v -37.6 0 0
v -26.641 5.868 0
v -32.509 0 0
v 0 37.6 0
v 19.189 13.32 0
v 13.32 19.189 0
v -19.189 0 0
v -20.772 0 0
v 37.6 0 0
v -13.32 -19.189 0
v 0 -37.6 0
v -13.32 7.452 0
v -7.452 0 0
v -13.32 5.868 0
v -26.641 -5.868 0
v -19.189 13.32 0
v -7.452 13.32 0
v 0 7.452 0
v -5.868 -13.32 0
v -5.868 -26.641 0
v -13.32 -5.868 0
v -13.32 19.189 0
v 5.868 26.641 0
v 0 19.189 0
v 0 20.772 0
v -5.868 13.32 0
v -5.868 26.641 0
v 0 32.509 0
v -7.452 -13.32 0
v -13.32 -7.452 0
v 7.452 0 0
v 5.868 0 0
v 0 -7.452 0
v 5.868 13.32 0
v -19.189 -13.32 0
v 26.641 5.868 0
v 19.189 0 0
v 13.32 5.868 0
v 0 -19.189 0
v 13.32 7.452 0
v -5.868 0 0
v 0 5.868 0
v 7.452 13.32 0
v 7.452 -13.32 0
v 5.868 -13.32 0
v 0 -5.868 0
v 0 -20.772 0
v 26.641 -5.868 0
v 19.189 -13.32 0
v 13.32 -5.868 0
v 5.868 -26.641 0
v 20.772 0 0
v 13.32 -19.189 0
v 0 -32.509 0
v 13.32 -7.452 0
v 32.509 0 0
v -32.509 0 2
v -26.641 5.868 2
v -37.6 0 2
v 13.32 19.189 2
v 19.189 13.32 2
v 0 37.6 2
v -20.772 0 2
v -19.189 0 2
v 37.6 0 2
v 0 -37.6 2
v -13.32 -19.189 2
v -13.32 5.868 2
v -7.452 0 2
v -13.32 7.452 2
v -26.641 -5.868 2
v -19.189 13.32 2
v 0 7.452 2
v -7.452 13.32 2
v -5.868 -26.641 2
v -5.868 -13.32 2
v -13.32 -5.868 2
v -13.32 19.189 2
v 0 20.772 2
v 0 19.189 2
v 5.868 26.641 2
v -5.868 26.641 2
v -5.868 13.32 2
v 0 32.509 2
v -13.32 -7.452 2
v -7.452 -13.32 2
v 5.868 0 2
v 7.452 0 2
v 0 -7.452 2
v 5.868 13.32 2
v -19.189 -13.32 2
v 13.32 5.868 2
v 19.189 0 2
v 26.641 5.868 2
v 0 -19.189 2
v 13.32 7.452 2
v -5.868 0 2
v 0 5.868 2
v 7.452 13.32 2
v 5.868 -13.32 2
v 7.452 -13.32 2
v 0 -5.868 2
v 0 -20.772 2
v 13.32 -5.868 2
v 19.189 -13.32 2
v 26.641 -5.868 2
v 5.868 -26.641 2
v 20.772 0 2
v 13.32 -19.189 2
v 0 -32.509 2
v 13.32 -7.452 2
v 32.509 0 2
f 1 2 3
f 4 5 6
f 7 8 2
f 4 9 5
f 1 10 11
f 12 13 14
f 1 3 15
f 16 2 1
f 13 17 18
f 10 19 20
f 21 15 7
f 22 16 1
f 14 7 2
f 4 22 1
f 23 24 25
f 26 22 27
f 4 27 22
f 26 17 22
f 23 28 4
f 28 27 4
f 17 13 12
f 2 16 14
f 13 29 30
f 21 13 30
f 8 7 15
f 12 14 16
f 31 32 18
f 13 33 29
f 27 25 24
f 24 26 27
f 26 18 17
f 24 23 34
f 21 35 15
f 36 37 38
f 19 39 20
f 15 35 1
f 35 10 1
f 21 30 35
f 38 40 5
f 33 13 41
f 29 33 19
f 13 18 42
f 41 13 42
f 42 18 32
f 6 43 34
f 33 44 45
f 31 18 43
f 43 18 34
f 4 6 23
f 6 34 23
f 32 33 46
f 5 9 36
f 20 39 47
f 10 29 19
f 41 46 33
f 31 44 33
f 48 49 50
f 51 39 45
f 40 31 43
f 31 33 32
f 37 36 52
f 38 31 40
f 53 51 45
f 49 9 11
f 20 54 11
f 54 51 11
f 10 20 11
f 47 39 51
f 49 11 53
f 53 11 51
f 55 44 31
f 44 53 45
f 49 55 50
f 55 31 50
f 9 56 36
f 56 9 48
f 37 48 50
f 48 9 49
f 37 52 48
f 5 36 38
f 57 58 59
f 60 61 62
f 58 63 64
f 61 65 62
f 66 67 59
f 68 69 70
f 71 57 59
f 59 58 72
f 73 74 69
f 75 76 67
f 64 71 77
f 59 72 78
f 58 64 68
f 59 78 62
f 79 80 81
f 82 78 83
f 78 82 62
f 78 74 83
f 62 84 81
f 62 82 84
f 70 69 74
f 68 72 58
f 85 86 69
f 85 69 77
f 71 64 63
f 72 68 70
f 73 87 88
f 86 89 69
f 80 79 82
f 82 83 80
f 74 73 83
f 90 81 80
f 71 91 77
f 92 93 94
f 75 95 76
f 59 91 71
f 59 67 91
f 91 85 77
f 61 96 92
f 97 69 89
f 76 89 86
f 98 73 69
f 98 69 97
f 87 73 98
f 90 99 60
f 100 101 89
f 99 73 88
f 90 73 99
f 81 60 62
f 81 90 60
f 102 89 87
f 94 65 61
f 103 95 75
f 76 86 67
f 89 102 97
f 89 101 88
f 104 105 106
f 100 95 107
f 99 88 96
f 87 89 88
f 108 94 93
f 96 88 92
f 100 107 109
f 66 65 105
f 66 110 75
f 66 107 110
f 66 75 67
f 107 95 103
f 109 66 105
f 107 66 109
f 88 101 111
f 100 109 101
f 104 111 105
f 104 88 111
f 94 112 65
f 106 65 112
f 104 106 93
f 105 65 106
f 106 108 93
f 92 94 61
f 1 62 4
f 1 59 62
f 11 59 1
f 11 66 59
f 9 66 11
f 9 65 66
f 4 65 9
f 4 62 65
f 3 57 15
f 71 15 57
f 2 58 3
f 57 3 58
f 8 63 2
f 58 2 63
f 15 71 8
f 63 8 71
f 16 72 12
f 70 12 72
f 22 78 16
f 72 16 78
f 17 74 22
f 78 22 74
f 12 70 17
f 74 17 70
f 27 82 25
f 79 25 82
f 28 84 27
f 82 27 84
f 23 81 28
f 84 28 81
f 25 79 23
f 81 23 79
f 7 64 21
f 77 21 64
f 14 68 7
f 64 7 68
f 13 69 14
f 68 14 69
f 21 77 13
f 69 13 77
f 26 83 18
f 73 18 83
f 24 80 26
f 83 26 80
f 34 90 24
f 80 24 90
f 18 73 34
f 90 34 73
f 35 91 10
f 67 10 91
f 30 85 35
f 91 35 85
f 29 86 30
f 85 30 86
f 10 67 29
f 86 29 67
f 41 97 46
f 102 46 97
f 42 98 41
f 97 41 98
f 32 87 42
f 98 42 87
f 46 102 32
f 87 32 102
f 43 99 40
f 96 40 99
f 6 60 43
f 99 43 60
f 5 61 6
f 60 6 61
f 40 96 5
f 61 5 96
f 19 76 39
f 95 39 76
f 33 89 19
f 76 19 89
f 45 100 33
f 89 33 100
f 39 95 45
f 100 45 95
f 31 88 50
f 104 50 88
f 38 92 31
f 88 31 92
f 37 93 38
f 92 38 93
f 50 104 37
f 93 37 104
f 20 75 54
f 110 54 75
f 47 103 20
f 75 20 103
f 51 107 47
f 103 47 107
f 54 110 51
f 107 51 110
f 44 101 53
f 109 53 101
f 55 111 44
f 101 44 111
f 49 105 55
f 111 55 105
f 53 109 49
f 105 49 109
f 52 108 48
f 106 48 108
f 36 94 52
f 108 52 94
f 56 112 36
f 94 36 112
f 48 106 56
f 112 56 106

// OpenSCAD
// file: bellum_badge_001.scad
// bellum_badge_001.scad
// Two-color badge of the "Bellum" checkerboard logo, built as separate
// printable parts (print some in white, some in black, glue together):
//   base_disc()          black - circle background; its top surface shows
//                        through the lattice holes as the black squares
//   white_lattice()      white - diamond border + white squares + grout
//                        webs, one connected piece; glue onto the disc
//   black_tiles()        black - optional drop-in tiles if you want the
//                        black squares flush with the white top surface
//   text_plate_black()   black - outline plate behind the letters (the
//                        logo's dark text outline)
//   text_letters_white() white - "Bellum" letters, glue onto the plate
//
// Everything scales from badge_d. Layer thicknesses and fit clearance are
// absolute (printer-dependent), so they stay put when you rescale.
// Companion files export one part each: _base, _lattice, _tiles,
// _text_black, _text_white. This master file shows the assembled badge.

$fa = 2;
$fs = 0.4;

// ---- scale ----
badge_d = 80;       // badge diameter: THE scale knob
n       = 5;        // checker tiles per row (odd -> black diamond corners)

// ---- thicknesses (absolute mm, independent of badge_d) ----
t_base = 3;         // black disc
t_top  = 2;         // white lattice and drop-in tiles (total badge = 5)
t_text = 1.2;       // each text layer (plate and letters)
clr    = 0.15;      // per-side XY clearance for the drop-in tiles

// ---- proportions (fractions of badge_d, from the logo) ----
diamond_frac = 0.94;   // diamond diagonal / badge diameter
border_w = max(0.045 * badge_d, 1.6);  // white rim around the checker field
grout_w  = max(0.014 * badge_d, 0.8);  // white web between tiles
text_w   = 0.80 * badge_d;             // width of "Bellum"
outline_w = max(0.022 * badge_d, 1.2); // black outline around the letters
bold_w    = 0.004 * badge_d;           // stroke thickening for printability

font = "Gabriola";  // ornate serif; try "Palatino Linotype:style=Bold Italic"

// ---- derived ----
half_diag = diamond_frac * badge_d / 2;
sq_o  = half_diag * sqrt(2);            // outer side of the white diamond
sq_f  = sq_o - 2 * border_w;            // side of the checker field
tile  = (sq_f - (n - 1) * grout_w) / n; // checker tile size
pitch = tile + grout_w;

eps = 0.01;

// ---------------- 2D shapes ----------------

// centers of the black squares, in the unrotated field frame
function tile_org(i) = -sq_f / 2 + i * pitch;

module black_squares_2d(shrink = 0) {
    for (i = [0 : n - 1], j = [0 : n - 1])
        if ((i + j) % 2 == 0)
            translate([tile_org(i) + shrink, tile_org(j) + shrink])
                square(tile - 2 * shrink);
}

// white diamond: border + white squares + grout webs (one connected piece)
module lattice_2d() {
    rotate(45) difference() {
        square(sq_o, center = true);
        black_squares_2d();
    }
}

module text_2d() {
    offset(r = bold_w)
        resize([text_w, 0], auto = true)
            text("Bellum", size = 10, font = font,
                 halign = "center", valign = "center");
}

// ---------------- printable parts (each flat on Z=0) ----------------

module base_disc() {
    linear_extrude(t_base) circle(badge_d / 2);
}

module white_lattice() {
    linear_extrude(t_top) lattice_2d();
}

// optional flush inlays for the black squares, laid out for printing
module black_tiles() {
    for (i = [0 : n - 1], j = [0 : n - 1])
        if ((i + j) % 2 == 0)
            translate([i * (tile + 3), j * (tile + 3)])
                linear_extrude(t_top)
                    square(tile - 2 * clr);
}

module text_plate_black() {
    linear_extrude(t_text) offset(r = outline_w) text_2d();
}

module text_letters_white() {
    linear_extrude(t_text) text_2d();
}

// ---------------- assembled preview ----------------

module assembly() {
    color([0.15, 0.15, 0.15])  base_disc();
    color("white")   translate([0, 0, t_base]) white_lattice();
    color([0.15, 0.15, 0.15])  translate([0, 0, t_base + t_top]) text_plate_black();
    color("white")   translate([0, 0, t_base + t_top + t_text])
                         text_letters_white();
}

assembly();
// main file
// bellum_badge_001_lattice.scad - print in WHITE
// Diamond border + white squares + grout webs, one piece. Glue onto the base.
use <bellum_badge_001.scad>
white_lattice();
